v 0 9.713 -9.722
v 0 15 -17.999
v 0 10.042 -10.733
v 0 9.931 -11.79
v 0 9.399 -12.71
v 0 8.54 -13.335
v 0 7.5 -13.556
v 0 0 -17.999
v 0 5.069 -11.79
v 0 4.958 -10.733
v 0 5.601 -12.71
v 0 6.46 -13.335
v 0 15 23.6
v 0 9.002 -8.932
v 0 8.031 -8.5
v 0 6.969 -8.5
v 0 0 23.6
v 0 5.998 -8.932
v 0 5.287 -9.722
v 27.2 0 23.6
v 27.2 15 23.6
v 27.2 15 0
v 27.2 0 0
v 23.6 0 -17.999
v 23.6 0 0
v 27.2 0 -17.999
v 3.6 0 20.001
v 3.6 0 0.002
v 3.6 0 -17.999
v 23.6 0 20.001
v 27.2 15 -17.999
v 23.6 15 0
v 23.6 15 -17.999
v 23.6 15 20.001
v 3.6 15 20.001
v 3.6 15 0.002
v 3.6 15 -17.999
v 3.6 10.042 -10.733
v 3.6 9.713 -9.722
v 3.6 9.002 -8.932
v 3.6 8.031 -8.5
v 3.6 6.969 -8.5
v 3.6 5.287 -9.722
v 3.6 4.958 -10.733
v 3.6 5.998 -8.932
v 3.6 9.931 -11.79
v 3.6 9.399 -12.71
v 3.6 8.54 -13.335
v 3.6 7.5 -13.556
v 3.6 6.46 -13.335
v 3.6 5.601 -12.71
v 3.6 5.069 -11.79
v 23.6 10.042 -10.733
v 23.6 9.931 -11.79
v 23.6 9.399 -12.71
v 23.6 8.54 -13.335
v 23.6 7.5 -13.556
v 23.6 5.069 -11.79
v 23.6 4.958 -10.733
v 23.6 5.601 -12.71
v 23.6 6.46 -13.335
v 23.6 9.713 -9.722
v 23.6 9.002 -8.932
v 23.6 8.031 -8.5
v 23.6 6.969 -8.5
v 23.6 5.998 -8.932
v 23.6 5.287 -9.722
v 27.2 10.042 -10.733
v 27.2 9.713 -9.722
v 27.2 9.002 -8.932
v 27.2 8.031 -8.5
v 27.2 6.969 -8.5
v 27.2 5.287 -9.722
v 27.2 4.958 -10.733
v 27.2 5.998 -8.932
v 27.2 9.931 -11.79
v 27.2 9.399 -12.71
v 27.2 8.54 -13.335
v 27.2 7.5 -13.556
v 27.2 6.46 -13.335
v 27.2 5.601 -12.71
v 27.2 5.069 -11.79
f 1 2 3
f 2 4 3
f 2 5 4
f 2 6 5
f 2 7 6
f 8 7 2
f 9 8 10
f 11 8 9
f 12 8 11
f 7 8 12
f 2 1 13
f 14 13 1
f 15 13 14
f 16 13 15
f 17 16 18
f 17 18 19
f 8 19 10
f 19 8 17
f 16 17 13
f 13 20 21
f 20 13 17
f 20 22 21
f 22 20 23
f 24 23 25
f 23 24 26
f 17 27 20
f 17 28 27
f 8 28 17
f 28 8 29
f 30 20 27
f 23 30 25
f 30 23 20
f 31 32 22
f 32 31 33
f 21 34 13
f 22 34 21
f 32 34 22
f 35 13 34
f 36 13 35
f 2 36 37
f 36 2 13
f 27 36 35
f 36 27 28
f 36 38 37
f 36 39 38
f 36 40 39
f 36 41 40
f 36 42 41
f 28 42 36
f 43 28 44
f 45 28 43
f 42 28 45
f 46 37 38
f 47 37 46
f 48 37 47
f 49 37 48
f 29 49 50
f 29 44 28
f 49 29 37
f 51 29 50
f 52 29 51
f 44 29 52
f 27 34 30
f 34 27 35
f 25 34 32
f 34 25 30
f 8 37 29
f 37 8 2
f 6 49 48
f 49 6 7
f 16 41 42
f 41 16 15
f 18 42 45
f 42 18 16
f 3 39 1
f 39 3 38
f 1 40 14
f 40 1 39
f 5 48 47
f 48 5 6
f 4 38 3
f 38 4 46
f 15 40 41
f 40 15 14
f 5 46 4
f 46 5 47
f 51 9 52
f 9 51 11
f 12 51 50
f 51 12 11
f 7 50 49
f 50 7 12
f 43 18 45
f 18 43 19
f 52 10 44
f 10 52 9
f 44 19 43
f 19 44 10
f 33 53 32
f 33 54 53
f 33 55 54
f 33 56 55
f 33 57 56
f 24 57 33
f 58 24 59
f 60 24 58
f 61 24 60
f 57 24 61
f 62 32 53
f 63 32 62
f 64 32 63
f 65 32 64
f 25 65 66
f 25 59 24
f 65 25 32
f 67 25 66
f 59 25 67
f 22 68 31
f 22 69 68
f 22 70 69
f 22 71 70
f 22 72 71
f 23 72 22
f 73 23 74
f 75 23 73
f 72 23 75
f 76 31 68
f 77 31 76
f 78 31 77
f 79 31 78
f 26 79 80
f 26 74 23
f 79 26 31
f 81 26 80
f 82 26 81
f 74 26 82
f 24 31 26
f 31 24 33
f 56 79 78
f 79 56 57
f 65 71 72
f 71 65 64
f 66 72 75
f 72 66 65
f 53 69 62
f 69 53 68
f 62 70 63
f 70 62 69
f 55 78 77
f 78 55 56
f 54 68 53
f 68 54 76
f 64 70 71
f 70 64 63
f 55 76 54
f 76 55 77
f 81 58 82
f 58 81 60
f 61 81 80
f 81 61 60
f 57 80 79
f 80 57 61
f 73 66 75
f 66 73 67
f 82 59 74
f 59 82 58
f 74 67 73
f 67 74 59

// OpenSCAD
// file: ../lib/hole.scad
module cylinder_outer(h,d=undef,d1=undef,d2=undef,fn=15) {
	fudge = cos(180/fn);
	cylinder(h=h,d=d/fudge,d1=d1/fudge,d2=d2/fudge,$fn=fn);
}

module hole(d, height, countersink=0, extra_above=false) {
	height = height - countersink;
	translate([0, 0, -(height+countersink)]) {
		translate([0, 0, height+0.001]) cylinder_outer(d1=d, d2=d*1.5, h=countersink);
		if (extra_above) {
			translate([0, 0, height+0.001]) cylinder_outer(d1=d, d2=d*2, h=countersink*3/2);
		}
		if (height > 0)
			translate([0, 0, -2]) cylinder_outer(d=d, h=height+2.1);
	}
}

module nut_trap(w, h, sides){
	cylinder(r = w / 2 / cos(180 / 6) + 0.05, h=h, $fn=6);
}

module rim(id, od, h) {
	difference() {
		cylinder_outer(h=h, d=od);
		translate([0, 0, -1]) cylinder(h=h+2, d=id);
	}
}

rim(8.5, 13, 2);
// main file
use <../lib/hole.scad>;

w = 20;
h = 20;
l = 15;
thickness = 3.6;
hanger = 18;
d = 3.5;
both_sides = true;

difference() {
	cube([w+thickness*2, l, h+thickness]);
	translate([thickness,-0.001, -0.001]) cube([w, l+0.002, h+0.002]);
}

bottom();

if (both_sides) {
	translate([w+thickness, 0, 0]) bottom();
}

module bottom() {
	difference() {
		translate([0, 0, -hanger+0.001]) cube([thickness, l, hanger+0.001]);
		translate([0, l/2, -(hanger-d*2)]) rotate([0, 90, 0]) translate([0, 0, -0.001]) cylinder_outer(d=5, h=thickness+0.002);
	}
}
